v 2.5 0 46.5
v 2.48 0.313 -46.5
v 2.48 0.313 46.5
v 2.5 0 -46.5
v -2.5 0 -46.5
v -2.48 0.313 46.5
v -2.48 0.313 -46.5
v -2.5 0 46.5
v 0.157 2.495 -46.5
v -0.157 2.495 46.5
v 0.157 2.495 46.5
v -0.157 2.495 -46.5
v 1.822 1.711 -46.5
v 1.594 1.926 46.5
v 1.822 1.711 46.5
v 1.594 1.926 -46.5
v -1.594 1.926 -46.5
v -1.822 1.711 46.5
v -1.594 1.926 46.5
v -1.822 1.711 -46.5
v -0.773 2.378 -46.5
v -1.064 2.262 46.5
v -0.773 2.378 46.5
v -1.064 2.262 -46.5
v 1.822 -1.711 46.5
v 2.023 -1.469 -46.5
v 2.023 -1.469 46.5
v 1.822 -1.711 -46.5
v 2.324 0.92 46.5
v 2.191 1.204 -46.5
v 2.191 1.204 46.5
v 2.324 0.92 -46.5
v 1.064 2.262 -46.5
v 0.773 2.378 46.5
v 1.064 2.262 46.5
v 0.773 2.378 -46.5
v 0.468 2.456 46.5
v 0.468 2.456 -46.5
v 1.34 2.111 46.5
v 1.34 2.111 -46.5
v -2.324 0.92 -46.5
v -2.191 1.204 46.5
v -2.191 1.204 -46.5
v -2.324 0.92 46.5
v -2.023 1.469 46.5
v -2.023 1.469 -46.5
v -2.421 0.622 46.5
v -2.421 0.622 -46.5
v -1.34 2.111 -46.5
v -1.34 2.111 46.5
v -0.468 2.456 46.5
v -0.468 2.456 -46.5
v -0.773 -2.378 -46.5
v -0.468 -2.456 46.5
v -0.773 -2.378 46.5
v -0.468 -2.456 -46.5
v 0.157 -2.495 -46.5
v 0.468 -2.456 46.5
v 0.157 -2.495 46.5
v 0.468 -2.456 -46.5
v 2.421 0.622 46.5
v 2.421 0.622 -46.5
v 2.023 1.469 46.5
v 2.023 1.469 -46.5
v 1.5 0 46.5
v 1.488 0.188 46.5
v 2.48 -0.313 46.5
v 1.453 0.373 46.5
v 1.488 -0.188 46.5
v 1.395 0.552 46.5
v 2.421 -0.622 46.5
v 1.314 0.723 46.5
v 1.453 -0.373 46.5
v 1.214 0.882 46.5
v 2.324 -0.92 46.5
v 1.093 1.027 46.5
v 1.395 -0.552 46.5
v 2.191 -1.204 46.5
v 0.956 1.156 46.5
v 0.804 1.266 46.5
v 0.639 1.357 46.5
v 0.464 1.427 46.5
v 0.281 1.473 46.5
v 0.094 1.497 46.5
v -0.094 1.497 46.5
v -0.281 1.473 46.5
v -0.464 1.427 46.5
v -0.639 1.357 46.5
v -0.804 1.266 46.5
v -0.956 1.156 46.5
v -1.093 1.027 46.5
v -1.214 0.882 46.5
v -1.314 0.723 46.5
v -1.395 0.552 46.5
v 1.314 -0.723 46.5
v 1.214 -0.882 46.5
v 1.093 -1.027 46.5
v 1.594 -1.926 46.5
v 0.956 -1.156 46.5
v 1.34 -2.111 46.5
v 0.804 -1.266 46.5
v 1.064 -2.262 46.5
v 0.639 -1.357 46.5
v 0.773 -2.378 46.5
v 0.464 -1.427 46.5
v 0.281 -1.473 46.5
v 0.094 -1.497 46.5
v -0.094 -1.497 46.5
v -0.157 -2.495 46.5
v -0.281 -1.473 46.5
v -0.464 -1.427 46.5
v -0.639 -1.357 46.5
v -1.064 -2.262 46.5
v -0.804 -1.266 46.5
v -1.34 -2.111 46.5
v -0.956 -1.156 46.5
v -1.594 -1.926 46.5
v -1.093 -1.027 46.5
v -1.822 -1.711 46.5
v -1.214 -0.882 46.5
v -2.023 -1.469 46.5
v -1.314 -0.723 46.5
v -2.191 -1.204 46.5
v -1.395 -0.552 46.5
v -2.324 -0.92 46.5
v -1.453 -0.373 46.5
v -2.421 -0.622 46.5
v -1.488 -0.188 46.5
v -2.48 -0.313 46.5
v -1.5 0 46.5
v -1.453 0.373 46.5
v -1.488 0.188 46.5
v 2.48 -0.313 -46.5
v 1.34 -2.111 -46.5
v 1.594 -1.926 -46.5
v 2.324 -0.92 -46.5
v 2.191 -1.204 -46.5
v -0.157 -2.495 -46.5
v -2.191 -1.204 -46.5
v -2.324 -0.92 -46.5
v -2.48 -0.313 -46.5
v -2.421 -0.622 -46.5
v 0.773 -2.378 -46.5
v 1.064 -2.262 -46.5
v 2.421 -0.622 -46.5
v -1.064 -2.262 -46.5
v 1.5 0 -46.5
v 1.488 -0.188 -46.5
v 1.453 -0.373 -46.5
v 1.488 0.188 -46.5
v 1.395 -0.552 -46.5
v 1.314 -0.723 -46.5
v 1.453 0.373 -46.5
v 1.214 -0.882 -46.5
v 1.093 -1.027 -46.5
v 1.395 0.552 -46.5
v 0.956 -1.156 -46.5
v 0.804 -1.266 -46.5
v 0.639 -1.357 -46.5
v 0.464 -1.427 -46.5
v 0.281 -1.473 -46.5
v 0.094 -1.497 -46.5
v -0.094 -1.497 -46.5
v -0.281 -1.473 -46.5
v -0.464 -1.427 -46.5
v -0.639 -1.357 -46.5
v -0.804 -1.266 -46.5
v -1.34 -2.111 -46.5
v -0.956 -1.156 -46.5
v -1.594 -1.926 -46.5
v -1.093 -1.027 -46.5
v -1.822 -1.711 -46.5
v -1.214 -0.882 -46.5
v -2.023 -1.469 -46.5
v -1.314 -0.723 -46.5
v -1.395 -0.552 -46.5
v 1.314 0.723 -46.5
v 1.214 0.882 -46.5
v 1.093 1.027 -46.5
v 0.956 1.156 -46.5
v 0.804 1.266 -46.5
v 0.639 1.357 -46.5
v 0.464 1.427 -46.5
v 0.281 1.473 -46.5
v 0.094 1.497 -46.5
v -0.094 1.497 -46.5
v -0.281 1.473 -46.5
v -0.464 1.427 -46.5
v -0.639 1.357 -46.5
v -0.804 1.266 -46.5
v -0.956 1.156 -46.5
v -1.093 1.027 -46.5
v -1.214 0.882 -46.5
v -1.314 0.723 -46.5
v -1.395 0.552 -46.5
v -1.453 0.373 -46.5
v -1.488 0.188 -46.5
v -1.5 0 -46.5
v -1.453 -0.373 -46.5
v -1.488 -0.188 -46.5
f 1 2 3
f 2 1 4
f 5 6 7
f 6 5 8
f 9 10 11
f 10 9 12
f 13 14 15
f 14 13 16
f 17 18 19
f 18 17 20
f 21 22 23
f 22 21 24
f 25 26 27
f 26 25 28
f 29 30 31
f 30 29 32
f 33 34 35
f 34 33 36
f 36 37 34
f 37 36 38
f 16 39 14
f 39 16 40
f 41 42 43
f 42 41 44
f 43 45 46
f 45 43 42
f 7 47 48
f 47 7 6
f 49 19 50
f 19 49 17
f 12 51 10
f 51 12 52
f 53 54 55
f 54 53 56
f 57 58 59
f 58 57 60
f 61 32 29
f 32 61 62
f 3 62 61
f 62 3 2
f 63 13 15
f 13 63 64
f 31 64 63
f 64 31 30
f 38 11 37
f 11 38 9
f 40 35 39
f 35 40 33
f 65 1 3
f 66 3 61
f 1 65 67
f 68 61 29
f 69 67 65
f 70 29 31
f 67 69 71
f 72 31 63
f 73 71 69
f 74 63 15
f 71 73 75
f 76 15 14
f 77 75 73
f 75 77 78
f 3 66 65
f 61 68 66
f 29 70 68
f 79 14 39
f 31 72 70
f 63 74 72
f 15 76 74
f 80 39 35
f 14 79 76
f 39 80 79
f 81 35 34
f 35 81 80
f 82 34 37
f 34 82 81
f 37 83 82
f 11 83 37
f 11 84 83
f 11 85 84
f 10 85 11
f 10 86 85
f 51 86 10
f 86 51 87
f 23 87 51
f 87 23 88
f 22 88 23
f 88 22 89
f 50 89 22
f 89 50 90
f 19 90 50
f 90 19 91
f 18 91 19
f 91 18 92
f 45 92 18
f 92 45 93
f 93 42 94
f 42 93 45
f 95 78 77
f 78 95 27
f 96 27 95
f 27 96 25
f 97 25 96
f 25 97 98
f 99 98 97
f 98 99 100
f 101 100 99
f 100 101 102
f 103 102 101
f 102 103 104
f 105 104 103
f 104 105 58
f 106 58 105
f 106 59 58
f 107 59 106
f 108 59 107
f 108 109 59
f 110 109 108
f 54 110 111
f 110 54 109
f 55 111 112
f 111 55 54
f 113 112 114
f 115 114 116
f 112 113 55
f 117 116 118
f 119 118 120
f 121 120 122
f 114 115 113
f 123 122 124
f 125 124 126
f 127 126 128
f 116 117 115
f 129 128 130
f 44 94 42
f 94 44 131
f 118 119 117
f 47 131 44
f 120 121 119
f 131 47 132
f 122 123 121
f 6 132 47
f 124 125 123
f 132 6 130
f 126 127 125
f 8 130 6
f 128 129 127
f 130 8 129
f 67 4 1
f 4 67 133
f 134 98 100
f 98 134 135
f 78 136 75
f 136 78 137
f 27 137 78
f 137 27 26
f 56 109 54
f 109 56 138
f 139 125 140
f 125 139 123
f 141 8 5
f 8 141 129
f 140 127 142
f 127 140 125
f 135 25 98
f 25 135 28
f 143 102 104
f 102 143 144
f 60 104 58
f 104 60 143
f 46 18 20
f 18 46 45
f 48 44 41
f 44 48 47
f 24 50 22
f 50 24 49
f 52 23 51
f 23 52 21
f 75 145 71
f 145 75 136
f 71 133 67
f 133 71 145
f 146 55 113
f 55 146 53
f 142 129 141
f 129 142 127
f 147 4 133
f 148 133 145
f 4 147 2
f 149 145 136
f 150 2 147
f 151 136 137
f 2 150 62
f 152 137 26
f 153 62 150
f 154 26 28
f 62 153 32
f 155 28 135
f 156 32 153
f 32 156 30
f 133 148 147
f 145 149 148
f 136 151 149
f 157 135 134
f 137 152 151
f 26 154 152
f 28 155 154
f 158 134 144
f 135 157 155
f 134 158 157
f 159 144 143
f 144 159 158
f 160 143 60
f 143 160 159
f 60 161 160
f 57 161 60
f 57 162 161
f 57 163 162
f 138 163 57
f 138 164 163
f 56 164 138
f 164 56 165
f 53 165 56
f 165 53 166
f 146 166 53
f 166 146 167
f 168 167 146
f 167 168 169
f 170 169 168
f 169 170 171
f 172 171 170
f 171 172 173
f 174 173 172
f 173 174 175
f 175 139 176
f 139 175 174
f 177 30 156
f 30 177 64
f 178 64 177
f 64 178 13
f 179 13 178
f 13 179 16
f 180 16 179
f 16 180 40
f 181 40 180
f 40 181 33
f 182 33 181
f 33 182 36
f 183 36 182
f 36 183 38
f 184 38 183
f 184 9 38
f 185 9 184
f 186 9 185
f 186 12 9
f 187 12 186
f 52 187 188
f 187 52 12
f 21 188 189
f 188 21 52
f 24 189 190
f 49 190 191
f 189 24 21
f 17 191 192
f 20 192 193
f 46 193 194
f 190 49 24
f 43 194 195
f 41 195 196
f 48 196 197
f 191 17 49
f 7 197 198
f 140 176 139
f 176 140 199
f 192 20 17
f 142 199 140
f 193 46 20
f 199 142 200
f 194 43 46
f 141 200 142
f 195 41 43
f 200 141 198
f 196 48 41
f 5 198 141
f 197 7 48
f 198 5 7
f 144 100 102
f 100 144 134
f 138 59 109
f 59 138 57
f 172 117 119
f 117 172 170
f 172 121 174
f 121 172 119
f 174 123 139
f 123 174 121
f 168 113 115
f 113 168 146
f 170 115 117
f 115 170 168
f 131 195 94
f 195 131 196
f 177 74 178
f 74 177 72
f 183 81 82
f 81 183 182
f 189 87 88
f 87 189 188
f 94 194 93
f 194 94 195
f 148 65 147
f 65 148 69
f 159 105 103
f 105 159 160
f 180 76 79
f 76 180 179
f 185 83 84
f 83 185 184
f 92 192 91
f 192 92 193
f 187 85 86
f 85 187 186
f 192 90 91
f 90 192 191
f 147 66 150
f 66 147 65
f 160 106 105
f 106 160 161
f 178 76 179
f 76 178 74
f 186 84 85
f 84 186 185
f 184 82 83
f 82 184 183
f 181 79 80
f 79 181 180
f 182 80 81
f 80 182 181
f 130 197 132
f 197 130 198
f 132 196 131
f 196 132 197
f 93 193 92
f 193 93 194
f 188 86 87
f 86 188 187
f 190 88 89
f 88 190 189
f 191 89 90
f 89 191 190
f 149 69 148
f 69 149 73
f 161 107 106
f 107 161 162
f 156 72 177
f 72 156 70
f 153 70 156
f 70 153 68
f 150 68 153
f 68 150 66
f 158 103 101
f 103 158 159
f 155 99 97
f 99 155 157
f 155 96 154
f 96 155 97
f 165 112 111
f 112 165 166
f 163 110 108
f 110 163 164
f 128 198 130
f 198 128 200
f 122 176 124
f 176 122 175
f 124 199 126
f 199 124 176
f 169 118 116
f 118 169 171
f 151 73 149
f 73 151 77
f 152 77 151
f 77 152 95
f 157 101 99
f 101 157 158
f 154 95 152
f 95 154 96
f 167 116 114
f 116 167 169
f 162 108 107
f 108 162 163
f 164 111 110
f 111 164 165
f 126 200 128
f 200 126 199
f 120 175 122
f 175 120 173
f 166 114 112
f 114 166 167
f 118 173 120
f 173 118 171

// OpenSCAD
$fn = 50;


difference() {
	union() {
		translate(v = [0, 0, -46.5000000000]) {
			cylinder(h = 93, r = 2.5000000000);
		}
	}
	union() {
		translate(v = [0, 0, -100.0000000000]) {
			cylinder(h = 200, r = 1.5000000000);
		}
	}
}
